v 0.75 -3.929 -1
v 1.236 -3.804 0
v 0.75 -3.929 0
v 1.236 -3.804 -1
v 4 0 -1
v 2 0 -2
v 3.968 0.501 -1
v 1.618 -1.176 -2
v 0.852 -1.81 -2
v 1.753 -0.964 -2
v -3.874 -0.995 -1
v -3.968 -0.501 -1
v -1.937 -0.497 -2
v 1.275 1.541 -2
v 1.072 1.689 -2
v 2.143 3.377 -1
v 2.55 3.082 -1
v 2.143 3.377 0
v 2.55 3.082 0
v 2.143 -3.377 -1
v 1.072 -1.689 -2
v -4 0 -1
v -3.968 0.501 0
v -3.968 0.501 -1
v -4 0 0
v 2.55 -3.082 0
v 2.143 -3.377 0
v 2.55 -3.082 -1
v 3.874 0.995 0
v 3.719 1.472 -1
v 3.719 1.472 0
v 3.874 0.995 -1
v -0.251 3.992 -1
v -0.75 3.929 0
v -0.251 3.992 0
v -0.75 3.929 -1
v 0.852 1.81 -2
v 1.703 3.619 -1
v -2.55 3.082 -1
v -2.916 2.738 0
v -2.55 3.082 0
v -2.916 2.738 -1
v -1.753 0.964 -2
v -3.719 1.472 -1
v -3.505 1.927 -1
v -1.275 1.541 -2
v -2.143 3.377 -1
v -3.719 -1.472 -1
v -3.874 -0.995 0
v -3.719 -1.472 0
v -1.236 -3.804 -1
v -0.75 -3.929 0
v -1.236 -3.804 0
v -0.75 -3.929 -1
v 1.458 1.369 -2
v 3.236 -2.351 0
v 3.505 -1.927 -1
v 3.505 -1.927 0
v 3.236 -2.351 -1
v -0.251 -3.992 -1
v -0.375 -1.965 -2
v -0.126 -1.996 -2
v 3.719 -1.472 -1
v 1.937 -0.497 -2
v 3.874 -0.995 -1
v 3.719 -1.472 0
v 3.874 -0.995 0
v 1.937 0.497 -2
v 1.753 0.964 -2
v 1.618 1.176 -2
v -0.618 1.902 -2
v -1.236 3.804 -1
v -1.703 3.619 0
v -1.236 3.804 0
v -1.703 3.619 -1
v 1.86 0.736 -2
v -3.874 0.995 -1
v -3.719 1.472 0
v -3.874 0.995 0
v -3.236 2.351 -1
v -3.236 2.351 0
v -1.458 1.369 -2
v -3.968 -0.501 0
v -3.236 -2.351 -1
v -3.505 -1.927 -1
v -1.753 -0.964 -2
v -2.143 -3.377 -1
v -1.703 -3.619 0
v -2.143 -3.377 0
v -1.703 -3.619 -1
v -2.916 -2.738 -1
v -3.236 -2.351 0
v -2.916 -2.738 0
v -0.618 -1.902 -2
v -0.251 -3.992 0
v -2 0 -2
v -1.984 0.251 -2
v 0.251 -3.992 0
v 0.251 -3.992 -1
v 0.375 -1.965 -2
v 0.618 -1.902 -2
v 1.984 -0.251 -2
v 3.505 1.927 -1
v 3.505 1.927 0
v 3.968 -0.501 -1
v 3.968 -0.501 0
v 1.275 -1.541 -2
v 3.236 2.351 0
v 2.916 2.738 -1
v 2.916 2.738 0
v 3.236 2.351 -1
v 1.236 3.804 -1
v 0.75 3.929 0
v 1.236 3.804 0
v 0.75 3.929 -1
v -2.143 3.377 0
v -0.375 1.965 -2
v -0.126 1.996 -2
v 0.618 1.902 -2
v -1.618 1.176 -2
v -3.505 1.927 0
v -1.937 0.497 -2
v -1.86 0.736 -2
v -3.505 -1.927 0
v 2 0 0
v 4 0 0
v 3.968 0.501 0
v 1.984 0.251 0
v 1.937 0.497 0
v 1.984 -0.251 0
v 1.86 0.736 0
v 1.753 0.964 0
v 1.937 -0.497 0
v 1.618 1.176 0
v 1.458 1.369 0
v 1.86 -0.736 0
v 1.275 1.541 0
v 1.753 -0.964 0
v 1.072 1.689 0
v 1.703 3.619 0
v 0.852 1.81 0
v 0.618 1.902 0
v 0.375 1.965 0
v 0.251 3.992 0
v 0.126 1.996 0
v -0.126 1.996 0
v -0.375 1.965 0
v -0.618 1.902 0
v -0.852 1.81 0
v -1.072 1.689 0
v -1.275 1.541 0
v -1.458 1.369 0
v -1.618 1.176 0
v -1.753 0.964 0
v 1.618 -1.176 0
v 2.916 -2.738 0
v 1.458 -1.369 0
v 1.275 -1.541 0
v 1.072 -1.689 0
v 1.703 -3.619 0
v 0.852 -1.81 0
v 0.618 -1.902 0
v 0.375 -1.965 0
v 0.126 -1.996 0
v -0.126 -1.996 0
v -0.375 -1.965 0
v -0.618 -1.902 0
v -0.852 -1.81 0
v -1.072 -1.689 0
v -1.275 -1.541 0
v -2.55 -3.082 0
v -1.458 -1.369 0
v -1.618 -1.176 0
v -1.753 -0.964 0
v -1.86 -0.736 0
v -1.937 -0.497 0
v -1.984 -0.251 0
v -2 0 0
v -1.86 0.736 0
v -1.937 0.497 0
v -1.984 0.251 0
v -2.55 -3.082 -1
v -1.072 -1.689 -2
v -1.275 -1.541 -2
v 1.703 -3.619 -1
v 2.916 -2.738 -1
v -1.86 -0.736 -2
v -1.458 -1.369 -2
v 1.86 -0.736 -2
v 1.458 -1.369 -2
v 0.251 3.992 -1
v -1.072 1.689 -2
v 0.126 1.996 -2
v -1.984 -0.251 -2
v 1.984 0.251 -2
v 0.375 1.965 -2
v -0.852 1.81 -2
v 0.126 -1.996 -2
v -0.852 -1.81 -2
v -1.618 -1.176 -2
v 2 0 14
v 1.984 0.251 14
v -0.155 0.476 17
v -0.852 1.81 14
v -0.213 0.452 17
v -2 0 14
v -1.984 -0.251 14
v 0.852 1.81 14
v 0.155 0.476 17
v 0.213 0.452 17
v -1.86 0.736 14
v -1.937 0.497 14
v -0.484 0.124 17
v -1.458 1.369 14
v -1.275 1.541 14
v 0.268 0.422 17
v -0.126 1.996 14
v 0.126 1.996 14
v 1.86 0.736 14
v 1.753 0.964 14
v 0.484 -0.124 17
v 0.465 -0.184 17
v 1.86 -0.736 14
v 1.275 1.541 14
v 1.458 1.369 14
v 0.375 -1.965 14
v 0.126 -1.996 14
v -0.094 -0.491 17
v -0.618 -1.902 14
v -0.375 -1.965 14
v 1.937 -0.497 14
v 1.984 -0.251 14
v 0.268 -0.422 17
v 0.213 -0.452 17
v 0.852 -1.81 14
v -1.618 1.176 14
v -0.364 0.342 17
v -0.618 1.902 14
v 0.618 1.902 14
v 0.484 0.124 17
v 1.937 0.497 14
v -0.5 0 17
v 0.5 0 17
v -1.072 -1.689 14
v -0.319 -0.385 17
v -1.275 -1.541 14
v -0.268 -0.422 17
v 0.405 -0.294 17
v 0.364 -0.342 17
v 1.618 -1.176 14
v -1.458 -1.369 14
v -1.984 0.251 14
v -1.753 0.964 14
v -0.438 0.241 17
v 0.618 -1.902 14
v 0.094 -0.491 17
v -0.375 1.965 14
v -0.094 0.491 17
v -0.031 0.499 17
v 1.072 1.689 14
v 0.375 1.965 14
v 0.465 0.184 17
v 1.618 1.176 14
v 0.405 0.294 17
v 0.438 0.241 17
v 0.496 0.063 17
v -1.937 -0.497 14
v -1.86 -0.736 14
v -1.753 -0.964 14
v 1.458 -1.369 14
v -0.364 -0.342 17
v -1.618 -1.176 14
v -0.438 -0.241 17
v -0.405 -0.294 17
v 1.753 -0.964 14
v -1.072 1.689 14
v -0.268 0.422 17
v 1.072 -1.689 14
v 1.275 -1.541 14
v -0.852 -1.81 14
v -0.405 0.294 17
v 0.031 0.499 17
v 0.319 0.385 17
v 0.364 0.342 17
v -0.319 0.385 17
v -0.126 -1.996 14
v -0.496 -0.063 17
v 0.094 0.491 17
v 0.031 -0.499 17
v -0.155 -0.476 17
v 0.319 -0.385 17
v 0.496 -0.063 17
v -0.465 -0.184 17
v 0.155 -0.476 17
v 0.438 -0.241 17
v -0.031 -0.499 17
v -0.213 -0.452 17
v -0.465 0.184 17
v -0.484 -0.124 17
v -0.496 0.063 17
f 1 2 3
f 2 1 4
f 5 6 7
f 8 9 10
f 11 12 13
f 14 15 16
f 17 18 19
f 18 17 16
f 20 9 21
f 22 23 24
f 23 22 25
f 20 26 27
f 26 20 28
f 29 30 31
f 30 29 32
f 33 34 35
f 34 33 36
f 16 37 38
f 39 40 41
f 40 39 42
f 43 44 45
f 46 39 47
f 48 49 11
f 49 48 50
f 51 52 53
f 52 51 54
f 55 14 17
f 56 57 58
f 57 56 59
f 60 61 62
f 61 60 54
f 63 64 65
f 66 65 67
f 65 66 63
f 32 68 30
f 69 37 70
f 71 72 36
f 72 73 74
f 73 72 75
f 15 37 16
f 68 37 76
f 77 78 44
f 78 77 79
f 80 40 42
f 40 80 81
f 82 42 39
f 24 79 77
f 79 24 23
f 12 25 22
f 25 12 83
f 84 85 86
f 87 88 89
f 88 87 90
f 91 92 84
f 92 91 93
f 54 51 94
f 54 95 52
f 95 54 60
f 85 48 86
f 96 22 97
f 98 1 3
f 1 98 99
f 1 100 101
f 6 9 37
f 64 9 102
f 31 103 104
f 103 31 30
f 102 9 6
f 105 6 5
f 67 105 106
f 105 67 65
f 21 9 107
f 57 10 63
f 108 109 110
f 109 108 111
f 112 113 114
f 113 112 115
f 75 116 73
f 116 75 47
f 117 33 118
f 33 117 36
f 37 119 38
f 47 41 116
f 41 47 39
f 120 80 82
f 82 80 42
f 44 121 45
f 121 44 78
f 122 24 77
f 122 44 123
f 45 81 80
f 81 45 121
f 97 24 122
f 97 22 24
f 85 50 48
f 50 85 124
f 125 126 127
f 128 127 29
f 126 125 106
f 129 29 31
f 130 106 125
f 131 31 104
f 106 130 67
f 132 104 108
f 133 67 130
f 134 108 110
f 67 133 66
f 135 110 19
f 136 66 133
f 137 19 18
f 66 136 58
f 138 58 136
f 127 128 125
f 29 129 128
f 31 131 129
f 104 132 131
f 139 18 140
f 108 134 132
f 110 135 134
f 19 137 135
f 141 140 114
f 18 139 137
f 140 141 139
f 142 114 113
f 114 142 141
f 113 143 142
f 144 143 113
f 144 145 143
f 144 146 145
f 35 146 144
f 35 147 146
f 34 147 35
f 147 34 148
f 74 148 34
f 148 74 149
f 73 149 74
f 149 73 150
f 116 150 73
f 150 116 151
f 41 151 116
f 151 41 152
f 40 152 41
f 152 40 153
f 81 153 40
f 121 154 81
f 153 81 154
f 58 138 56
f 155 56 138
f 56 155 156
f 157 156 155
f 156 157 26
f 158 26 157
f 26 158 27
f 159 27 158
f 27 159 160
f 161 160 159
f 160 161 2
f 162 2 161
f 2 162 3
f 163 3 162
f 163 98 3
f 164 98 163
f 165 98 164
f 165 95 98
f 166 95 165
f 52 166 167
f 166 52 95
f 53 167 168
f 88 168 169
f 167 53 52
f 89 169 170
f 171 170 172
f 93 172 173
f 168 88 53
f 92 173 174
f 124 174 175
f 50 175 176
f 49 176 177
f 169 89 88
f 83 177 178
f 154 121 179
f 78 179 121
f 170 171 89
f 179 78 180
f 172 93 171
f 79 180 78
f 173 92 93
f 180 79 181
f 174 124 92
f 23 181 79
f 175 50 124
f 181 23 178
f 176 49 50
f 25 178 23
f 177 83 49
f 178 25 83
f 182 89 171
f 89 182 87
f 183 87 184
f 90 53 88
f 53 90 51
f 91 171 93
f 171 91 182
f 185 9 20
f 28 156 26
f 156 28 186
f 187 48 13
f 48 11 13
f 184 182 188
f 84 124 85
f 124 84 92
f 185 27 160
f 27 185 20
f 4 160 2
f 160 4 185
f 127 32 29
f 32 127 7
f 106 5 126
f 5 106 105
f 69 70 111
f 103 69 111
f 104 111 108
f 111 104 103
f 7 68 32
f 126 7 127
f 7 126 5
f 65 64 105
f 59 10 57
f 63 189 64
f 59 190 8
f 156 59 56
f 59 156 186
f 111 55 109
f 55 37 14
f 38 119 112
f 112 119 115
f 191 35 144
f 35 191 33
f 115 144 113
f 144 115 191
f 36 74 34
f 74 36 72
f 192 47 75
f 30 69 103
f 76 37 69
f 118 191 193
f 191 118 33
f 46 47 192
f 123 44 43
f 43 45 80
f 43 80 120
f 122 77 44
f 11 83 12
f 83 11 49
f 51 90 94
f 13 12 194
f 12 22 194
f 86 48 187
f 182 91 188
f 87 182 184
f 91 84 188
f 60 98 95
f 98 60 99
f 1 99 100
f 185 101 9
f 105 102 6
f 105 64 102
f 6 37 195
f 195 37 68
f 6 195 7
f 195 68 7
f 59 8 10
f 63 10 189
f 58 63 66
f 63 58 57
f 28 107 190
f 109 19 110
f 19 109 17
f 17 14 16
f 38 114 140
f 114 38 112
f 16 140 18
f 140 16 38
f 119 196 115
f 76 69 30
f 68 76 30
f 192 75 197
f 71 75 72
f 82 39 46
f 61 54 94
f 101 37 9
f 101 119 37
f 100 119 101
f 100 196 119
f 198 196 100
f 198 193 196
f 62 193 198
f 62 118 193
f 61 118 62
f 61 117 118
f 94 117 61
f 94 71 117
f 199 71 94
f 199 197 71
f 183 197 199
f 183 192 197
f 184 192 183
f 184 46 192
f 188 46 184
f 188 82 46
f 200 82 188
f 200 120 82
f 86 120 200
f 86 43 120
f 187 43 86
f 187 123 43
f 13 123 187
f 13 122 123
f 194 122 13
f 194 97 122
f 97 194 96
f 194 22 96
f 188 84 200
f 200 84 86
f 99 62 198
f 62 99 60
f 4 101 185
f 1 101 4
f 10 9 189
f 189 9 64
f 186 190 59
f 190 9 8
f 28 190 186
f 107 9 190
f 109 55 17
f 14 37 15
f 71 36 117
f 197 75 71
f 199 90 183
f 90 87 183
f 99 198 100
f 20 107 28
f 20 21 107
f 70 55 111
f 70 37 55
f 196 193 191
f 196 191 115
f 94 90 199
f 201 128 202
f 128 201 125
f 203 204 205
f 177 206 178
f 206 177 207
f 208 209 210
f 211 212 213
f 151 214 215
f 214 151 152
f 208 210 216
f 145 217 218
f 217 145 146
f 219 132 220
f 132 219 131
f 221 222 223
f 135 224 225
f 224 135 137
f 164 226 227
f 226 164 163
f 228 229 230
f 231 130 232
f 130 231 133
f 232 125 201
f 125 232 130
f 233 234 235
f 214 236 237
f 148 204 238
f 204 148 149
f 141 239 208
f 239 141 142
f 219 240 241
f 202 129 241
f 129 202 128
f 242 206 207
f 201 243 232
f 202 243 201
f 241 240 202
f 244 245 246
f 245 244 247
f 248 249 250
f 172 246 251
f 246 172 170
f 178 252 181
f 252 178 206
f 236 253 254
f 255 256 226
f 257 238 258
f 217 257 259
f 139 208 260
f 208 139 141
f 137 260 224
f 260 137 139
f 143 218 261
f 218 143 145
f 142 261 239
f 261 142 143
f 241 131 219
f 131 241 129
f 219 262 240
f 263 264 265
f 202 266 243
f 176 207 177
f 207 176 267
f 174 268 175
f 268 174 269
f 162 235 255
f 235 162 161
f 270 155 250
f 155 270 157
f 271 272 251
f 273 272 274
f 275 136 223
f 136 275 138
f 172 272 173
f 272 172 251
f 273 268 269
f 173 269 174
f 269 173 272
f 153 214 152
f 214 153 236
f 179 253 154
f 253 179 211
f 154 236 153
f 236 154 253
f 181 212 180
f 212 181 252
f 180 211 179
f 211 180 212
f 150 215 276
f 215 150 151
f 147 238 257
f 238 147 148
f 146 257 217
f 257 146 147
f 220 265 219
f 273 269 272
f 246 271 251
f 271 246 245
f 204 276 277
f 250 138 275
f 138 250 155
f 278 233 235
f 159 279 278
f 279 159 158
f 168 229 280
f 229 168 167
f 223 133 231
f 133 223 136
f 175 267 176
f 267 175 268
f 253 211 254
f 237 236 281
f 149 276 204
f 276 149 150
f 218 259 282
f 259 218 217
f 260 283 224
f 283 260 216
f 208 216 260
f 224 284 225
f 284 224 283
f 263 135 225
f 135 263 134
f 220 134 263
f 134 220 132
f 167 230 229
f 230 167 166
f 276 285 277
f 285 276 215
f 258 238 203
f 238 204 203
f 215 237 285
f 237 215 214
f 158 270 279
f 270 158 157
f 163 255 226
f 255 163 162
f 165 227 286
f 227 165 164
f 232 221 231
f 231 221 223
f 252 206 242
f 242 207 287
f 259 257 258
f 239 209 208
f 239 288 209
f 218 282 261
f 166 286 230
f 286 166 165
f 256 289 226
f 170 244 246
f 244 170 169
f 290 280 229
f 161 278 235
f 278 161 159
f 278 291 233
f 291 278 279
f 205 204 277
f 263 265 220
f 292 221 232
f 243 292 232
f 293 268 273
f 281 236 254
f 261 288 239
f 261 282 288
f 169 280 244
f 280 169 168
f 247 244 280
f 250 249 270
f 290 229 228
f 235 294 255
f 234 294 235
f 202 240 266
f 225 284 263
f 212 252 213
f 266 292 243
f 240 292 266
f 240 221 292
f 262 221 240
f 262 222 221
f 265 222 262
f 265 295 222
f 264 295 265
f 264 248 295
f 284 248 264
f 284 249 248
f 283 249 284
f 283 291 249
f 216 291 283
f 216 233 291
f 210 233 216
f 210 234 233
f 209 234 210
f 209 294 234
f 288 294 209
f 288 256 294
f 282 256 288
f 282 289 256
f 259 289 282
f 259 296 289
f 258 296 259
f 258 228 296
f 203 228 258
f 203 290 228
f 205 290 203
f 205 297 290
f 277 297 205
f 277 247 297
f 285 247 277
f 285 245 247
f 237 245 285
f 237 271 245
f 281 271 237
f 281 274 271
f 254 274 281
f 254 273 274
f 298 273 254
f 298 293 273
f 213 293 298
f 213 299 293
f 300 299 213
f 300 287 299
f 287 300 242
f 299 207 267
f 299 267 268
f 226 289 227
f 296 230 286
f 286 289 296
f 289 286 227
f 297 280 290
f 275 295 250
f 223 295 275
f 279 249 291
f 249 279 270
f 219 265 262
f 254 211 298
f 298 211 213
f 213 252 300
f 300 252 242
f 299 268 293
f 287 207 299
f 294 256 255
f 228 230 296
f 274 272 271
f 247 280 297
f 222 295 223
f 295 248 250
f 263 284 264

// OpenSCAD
/*
 * Nail for sun reflection discs 
 * the nail holds the plexiglas circle in place
 * of the 6x4 mm cfk pipe
*/

$od=6; // outer diameter of cfk pipe
$id=4; // inner diameter of cfk pipe

$nailHeadHeight=2;
$nailHeadOD=4;
$fn=50;

$nailShaftWidth=14;
$nailEndWidth=3;

module cfkPipe($height) {
    difference() {
        cylinder(d=$od,h=$height);
        translate([0,0,0.1]) {
            cylinder(d=$id,h=$height+0.2);
        }
    }
}


module nailHead() {
    hull (){
        translate([0,0,$nailHeadHeight/2]) {
            cylinder(d=$nailHeadOD,h=$nailHeadHeight/2);
        }
        cylinder(d=$od+2,h=$nailHeadHeight/2);
    }
}

module nail() {
    rotate([0,180,0]) {
        nailHead();
    }
    hull() {
        cylinder(d=$id,h=0.1);
        translate([0,0,$nailShaftWidth-0.1]) {
            cylinder(d=$id,h=0.1);
        }
        translate([0,0,$nailShaftWidth+$nailEndWidth-0.1]) {
            cylinder(d=1,h=0.1);
        }
    }
}




//cfkPipe(10);
nail();
